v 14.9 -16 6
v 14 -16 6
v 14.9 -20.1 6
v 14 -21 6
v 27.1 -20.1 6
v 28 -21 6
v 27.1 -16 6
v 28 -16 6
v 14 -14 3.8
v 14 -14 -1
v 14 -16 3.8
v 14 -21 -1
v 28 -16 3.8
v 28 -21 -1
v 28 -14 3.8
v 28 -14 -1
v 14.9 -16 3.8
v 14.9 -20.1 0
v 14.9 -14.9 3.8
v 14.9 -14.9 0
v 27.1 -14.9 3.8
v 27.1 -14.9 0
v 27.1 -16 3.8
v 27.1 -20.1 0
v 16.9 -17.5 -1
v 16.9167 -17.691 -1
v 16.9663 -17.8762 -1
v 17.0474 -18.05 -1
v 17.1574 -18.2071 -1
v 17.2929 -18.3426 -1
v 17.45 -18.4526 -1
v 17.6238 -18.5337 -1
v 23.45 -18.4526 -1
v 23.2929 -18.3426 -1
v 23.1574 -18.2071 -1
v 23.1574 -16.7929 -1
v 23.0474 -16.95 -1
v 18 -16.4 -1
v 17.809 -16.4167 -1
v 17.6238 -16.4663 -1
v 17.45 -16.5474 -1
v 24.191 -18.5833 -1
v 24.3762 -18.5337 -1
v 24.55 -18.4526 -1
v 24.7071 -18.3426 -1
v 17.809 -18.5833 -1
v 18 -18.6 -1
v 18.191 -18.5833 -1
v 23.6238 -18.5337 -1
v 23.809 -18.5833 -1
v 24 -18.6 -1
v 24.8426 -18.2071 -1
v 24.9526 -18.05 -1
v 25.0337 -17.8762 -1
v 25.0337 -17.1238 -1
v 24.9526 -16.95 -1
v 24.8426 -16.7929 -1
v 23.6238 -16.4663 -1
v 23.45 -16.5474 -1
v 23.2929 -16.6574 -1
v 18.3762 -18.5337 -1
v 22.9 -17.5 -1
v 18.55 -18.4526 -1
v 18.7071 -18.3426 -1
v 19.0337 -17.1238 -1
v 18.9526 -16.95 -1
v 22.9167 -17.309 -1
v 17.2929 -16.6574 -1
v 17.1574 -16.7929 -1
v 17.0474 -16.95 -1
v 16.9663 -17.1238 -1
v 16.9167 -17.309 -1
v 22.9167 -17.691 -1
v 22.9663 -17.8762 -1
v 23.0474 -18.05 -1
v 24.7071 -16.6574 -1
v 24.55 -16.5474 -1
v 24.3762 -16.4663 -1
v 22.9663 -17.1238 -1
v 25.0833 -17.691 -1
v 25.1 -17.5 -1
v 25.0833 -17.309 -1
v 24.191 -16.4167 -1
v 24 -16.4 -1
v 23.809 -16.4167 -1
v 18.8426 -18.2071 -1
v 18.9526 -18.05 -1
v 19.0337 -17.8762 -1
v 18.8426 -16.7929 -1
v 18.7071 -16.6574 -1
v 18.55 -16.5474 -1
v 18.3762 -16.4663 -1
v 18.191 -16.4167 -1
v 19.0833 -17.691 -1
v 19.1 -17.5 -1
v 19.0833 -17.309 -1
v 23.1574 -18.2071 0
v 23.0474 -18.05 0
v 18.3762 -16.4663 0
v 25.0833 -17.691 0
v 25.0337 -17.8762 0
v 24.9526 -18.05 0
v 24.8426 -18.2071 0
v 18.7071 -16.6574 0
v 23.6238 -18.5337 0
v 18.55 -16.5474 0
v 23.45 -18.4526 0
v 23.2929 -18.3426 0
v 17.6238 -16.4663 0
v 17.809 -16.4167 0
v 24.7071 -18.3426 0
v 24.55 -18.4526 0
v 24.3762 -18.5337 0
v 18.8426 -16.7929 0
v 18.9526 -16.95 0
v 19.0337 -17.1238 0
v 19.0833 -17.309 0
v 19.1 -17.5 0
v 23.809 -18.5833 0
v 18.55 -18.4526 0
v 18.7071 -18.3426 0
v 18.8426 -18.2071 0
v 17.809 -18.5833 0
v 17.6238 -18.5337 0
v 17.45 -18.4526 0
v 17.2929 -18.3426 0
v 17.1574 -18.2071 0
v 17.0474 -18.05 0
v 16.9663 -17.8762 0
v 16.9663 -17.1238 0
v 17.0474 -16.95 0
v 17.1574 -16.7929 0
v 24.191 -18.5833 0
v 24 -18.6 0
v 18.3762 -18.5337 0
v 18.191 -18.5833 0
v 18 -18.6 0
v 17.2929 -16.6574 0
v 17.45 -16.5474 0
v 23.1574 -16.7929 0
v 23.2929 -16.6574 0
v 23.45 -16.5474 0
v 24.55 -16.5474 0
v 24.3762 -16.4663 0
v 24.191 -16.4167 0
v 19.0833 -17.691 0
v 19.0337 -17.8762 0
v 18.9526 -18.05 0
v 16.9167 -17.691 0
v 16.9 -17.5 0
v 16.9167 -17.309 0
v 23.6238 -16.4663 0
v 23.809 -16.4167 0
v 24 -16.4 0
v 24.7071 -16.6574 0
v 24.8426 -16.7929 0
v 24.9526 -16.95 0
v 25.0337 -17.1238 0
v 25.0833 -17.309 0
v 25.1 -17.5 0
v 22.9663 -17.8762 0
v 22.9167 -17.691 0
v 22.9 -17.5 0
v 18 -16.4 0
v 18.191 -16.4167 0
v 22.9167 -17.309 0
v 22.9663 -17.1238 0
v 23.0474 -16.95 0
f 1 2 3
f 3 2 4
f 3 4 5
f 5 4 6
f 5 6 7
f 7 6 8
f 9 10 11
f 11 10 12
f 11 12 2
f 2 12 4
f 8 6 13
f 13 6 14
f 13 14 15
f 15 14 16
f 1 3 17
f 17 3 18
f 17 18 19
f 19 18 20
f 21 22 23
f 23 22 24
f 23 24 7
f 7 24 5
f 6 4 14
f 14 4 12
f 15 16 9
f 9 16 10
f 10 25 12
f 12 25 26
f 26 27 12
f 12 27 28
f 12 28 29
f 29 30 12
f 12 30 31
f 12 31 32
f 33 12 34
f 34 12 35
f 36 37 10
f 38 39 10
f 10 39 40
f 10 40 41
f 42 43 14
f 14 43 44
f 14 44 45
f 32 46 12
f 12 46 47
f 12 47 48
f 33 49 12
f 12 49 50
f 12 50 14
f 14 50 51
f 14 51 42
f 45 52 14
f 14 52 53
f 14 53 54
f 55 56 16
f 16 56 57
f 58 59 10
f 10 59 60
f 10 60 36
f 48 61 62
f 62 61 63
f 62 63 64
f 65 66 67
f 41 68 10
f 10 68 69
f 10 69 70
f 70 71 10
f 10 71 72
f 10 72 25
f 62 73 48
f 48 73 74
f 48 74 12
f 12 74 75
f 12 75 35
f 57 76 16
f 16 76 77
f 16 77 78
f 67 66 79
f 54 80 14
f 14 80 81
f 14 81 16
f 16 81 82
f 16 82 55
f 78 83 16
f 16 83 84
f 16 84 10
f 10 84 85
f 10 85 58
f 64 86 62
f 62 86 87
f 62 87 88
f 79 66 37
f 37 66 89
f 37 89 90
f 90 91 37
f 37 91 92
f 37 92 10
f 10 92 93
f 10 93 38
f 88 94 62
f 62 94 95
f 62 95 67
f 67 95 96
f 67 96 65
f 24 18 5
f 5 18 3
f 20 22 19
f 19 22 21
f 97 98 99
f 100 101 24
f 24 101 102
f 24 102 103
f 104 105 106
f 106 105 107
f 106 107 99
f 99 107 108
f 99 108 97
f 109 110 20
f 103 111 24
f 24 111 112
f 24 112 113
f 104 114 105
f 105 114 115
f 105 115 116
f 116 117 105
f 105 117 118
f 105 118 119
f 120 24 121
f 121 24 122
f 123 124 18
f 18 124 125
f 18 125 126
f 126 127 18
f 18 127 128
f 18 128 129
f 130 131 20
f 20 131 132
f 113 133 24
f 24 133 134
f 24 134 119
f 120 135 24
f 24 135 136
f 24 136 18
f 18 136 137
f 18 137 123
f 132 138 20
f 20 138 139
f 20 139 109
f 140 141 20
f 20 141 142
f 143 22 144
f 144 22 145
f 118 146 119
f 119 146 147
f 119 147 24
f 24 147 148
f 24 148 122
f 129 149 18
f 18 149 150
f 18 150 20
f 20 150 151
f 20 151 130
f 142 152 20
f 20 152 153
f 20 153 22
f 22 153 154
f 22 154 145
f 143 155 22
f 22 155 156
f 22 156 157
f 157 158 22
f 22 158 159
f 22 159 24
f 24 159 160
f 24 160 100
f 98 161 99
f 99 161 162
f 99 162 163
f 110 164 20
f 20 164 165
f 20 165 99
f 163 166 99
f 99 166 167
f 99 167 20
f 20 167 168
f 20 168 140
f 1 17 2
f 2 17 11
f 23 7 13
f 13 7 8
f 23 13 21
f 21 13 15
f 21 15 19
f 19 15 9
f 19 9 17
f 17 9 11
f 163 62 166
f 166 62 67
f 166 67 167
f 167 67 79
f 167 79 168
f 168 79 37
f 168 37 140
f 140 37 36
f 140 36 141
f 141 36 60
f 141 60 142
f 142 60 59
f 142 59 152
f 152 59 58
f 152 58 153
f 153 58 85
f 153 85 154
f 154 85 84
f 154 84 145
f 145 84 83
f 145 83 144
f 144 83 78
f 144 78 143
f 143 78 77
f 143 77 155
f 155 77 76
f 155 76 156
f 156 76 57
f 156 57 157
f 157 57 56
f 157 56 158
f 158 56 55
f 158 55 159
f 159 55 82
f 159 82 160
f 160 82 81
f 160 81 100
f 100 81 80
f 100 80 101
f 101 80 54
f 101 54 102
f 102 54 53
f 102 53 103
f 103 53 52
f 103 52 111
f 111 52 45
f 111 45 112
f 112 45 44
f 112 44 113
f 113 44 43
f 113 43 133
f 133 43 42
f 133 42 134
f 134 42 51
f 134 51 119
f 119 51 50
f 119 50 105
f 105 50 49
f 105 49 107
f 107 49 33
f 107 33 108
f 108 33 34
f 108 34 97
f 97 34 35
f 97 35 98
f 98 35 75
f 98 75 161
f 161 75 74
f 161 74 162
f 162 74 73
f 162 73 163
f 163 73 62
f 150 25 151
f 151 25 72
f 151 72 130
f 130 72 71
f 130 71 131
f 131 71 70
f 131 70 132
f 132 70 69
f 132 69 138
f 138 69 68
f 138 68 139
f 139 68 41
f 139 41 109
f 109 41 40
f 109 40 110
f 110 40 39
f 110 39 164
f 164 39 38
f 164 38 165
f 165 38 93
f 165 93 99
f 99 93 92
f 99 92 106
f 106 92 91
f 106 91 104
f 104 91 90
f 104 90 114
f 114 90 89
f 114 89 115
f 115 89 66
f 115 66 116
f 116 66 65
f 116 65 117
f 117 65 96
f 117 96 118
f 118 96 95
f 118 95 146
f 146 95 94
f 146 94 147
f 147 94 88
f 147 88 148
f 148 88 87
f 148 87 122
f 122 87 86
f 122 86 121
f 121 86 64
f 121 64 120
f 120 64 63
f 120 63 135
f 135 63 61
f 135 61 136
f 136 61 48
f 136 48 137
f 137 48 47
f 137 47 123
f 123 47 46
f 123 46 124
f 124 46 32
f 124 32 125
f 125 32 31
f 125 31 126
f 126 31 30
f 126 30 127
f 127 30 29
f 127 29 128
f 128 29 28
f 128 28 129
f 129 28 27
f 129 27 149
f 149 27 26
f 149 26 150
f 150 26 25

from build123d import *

# Parameters (mm, degrees)
SOFT_CONTACT_AND_WRAP_START      = -1
SOFT_CONTACT_AND_WRAP_PROFILE_W  = 14
SOFT_CONTACT_AND_WRAP_PROFILE_H  = 7
SOFT_CONTACT_AND_WRAP_DEPTH      = 7
FINGER_SLIP_POCKET_PROFILE_W     = 12.2
FINGER_SLIP_POCKET_PROFILE_H     = 5.2
OPEN_TOP_SLIP_POCKET_DEPTH       = 7
SERVO_EAR_SWEEP_RELIEF_START     = 3.8
SERVO_EAR_SWEEP_RELIEF_PROFILE_W = 16
SERVO_EAR_SWEEP_RELIEF_PROFILE_H = 3
SERVO_EAR_SWEEP_RELIEF_DEPTH     = 3.2
PAD_CAPTURE_M2_START             = -50
PAD_CAPTURE_M2_PROFILE_R         = 1.1
PAD_CAPTURE_M2_DEPTH             = 86.510561809


with BuildPart() as part:
    # Soft_contact_and_wrap_profile → Soft_contact_and_wrap (new body)
    with BuildSketch(Plane.XY.offset(SOFT_CONTACT_AND_WRAP_START)):
        with Locations((21, -17.5)):
            Rectangle(SOFT_CONTACT_AND_WRAP_PROFILE_W, SOFT_CONTACT_AND_WRAP_PROFILE_H)
    extrude(amount=SOFT_CONTACT_AND_WRAP_DEPTH)

    # Finger_slip_pocket_profile → Open_top_slip_pocket (cut)
    with BuildSketch(Plane.XY):
        with Locations((21, -17.5)):
            Rectangle(FINGER_SLIP_POCKET_PROFILE_W, FINGER_SLIP_POCKET_PROFILE_H)
    extrude(amount=OPEN_TOP_SLIP_POCKET_DEPTH, mode=Mode.SUBTRACT)

    # Servo_ear_sweep_relief_profile → Servo_ear_sweep_relief (cut)
    with BuildSketch(Plane.XY.offset(SERVO_EAR_SWEEP_RELIEF_START)):
        with Locations((21, -14.5)):
            Rectangle(SERVO_EAR_SWEEP_RELIEF_PROFILE_W, SERVO_EAR_SWEEP_RELIEF_PROFILE_H)
    extrude(amount=SERVO_EAR_SWEEP_RELIEF_DEPTH, mode=Mode.SUBTRACT)

    # Pad_capture_M2_profile → Pad_capture_M2 (cut, through all)
    with BuildSketch(Plane.XY.offset(PAD_CAPTURE_M2_START)):
        with Locations(Location((18, -17.5, 0), (0, 0, 180))):
            Circle(PAD_CAPTURE_M2_PROFILE_R)
        with Locations(Location((24, -17.5, 0), (0, 0, 180))):
            Circle(PAD_CAPTURE_M2_PROFILE_R)
    extrude(amount=PAD_CAPTURE_M2_DEPTH, mode=Mode.SUBTRACT)


solid = part.part
